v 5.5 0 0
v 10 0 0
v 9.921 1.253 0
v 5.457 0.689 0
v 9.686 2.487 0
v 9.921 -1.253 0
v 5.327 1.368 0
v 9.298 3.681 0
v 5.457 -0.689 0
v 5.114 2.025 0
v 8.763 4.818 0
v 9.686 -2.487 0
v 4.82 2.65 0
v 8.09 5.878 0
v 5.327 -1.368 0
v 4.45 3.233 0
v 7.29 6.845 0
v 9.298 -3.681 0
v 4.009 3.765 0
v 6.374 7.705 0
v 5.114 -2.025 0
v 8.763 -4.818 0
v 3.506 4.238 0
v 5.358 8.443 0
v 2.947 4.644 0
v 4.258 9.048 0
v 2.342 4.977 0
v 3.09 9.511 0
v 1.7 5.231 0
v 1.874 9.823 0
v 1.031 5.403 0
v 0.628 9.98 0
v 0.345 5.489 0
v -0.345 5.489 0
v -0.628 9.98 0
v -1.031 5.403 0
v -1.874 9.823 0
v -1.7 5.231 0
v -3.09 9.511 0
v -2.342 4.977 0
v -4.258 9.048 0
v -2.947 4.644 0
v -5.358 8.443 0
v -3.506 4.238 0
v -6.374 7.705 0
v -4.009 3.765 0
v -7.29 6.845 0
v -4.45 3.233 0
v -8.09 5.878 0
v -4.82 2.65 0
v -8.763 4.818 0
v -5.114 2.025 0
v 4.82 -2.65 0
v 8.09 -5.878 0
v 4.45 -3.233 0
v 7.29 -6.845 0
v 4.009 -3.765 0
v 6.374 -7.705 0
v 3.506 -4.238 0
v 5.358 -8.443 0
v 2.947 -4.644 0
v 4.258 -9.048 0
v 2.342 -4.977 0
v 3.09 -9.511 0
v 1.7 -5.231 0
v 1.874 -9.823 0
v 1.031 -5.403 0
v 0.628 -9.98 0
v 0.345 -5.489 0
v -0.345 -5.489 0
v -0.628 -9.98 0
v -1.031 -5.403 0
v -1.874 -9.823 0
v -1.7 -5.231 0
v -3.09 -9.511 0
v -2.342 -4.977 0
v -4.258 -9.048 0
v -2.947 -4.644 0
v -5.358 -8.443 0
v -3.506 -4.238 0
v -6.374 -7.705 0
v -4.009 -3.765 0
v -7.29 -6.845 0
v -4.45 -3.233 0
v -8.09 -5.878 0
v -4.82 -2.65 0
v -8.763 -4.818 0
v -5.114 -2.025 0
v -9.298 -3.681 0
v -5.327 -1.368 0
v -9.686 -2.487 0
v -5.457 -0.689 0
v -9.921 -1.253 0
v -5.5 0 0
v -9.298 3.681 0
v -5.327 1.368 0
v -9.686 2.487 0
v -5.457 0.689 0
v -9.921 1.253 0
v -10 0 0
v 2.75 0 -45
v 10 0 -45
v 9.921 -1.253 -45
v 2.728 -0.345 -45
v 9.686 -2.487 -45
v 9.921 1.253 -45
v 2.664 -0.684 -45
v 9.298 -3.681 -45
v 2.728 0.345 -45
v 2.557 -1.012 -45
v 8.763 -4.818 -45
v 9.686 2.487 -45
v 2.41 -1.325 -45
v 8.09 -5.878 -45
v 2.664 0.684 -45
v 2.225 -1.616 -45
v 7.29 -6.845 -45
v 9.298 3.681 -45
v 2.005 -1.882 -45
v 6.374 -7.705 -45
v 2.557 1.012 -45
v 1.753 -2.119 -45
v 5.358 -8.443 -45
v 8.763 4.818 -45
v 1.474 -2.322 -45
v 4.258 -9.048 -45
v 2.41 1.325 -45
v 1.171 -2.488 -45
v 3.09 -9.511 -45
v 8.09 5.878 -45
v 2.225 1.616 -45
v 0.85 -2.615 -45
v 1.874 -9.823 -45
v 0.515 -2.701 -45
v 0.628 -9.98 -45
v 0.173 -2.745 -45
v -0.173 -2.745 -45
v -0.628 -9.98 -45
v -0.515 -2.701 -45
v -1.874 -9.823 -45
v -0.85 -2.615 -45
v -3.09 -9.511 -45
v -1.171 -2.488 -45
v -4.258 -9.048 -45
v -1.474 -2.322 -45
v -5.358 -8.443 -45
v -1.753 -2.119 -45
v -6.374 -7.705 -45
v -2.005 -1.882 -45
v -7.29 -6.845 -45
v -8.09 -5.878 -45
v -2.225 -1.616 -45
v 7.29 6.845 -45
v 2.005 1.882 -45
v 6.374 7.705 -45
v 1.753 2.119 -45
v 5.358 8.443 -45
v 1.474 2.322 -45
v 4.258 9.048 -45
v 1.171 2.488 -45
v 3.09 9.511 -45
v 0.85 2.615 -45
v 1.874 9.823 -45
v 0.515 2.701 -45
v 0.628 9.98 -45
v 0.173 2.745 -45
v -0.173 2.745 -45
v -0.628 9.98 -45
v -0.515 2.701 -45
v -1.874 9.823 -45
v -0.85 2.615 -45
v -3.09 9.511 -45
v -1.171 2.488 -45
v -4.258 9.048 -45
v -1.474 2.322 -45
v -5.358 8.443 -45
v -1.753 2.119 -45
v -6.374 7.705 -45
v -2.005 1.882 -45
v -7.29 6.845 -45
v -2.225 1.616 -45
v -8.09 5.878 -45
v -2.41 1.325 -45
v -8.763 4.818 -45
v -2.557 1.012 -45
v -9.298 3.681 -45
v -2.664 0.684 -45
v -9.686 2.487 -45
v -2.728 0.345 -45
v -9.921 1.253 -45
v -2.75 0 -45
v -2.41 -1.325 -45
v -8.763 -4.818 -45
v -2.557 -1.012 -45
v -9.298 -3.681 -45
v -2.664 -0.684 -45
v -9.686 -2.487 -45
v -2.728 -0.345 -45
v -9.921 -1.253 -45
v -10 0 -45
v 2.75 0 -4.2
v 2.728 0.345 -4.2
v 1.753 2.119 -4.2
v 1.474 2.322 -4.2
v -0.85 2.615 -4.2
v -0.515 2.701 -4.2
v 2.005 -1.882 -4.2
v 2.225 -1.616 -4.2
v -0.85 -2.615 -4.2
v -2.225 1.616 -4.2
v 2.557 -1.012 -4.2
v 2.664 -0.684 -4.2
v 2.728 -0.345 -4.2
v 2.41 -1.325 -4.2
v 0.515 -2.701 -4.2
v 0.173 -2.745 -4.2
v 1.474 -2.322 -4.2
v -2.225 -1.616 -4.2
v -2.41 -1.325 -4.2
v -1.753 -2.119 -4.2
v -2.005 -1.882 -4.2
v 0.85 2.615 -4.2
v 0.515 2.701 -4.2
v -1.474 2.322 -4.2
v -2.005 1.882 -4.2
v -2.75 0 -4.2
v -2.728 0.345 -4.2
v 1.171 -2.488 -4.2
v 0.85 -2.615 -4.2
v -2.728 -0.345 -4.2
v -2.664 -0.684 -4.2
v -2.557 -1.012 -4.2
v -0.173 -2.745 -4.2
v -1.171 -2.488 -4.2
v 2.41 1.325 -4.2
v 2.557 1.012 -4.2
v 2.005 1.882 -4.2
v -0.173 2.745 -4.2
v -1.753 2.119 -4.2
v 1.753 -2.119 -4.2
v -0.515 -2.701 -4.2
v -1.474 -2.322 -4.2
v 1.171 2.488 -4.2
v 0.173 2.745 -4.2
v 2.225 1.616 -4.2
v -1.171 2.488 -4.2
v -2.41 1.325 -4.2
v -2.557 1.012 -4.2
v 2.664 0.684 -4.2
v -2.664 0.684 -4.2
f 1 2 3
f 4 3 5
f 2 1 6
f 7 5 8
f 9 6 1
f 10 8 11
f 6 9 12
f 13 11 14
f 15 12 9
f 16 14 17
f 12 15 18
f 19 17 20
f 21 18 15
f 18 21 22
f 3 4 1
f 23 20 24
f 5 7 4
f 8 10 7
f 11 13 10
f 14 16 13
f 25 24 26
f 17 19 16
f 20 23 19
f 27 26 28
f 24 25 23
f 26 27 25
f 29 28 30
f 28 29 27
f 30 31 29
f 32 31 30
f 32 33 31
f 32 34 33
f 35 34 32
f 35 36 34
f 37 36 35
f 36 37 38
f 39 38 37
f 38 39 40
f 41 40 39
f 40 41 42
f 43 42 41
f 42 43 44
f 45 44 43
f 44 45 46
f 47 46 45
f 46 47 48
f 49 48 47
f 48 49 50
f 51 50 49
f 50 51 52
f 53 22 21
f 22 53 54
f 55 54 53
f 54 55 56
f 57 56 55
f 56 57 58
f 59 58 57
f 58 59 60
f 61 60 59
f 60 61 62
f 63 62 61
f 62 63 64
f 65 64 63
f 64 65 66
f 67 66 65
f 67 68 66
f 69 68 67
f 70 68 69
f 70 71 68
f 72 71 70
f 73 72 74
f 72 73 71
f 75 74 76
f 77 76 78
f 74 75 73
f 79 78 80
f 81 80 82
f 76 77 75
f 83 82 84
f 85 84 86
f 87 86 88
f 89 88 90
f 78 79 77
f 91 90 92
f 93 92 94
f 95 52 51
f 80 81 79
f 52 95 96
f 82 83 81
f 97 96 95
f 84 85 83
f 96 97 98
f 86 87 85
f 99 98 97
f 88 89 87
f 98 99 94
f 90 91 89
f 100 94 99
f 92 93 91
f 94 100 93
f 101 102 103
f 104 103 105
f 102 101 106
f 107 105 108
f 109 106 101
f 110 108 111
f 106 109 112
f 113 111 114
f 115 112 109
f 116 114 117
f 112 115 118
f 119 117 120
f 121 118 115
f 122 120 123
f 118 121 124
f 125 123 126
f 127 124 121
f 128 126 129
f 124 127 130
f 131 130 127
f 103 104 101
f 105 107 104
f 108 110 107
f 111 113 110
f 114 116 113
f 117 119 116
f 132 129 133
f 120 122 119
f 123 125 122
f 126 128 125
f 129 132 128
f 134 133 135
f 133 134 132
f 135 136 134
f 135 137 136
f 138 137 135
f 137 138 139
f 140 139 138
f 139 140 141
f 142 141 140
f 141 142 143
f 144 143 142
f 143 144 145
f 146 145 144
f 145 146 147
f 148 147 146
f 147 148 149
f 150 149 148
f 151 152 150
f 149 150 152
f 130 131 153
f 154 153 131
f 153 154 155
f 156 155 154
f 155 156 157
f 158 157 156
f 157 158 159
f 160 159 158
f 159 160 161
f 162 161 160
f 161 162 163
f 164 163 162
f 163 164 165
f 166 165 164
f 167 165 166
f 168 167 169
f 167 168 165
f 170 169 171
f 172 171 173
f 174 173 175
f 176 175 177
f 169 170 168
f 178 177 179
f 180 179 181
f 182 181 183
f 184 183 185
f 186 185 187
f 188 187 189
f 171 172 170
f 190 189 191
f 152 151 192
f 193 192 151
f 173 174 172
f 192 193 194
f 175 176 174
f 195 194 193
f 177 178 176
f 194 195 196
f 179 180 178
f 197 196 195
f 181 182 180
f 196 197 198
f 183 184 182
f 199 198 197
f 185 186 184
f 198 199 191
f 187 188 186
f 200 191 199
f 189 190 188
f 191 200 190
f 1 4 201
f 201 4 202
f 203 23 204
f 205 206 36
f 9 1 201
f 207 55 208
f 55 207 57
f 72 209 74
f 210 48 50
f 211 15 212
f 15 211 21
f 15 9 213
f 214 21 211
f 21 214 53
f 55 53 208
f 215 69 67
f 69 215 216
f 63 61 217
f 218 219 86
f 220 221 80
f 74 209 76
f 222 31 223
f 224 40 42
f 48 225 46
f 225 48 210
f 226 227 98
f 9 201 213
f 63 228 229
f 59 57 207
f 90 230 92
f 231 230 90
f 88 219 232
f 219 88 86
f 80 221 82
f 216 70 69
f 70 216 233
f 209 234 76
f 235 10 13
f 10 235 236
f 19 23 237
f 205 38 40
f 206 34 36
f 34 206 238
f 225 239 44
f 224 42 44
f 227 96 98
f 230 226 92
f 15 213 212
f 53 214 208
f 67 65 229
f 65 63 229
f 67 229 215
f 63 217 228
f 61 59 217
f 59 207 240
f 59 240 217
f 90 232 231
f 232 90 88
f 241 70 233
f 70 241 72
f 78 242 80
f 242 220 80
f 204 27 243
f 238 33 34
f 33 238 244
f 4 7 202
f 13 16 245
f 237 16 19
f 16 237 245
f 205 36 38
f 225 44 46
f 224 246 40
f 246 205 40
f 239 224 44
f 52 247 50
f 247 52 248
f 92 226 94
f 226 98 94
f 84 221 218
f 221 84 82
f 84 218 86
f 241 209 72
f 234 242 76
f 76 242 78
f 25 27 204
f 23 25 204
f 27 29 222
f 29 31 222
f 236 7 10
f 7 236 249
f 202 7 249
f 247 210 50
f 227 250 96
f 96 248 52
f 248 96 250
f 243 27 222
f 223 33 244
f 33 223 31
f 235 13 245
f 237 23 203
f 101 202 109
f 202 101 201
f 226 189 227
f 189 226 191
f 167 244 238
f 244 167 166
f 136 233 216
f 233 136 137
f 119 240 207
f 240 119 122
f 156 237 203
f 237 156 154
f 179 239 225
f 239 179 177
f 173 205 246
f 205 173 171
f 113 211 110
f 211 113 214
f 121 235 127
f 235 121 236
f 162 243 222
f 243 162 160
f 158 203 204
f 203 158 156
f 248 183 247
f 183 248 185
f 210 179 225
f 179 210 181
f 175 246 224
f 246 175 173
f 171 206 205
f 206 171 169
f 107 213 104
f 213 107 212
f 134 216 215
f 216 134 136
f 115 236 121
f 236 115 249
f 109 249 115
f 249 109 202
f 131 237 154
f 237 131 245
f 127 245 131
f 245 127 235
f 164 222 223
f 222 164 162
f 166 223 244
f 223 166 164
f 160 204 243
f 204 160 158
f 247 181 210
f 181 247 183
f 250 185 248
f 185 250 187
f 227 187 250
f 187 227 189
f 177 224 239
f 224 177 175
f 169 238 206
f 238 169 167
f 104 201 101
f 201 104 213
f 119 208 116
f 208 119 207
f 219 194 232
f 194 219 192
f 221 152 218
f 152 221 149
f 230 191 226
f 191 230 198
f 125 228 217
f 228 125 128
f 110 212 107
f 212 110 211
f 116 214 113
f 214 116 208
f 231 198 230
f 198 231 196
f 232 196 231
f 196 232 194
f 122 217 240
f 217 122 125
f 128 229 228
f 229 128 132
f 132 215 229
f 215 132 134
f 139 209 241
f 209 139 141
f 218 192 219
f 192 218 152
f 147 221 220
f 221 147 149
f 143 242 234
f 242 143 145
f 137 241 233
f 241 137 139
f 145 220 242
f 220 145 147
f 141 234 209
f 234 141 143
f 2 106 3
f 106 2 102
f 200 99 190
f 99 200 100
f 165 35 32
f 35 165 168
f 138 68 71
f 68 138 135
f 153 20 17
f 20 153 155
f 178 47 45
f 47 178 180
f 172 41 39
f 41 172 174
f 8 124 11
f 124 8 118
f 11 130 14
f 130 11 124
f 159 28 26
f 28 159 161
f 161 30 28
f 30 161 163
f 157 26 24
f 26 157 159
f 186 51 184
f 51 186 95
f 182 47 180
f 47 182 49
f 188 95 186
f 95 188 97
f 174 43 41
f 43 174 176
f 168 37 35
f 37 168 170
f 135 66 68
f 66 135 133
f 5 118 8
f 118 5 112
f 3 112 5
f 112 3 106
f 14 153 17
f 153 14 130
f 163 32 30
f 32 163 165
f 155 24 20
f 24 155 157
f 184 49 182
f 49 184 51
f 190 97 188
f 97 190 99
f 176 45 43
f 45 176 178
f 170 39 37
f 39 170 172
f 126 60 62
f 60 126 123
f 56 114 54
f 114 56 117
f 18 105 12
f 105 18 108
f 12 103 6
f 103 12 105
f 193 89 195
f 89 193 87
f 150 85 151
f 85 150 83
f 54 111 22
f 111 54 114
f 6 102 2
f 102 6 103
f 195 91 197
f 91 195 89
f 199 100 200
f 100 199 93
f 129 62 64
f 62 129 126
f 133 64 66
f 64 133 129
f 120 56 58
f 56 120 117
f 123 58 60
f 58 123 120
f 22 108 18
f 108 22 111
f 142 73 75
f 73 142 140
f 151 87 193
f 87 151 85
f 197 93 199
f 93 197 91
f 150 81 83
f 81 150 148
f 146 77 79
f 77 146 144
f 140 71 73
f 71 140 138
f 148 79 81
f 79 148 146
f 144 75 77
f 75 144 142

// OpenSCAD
$fn = 50;


difference() {
	union() {
		translate(v = [0, 0, -45.0000000000]) {
			cylinder(h = 45, r = 10.0000000000);
		}
		cylinder(h = 0, r = 20.0000000000);
	}
	union() {
		translate(v = [0, 0, 0]) {
			rotate(a = [0, 0, 0]) {
				difference() {
					union() {
						#translate(v = [0, 0, -45.0000000000]) {
							cylinder(h = 45, r = 2.2500000000);
						}
						#translate(v = [0, 0, -4.2000000000]) {
							cylinder(h = 4.2000000000, r = 10.0000000000, r1 = 2.7500000000, r2 = 5.5000000000);
						}
						#translate(v = [0, 0, -45.0000000000]) {
							cylinder(h = 45, r = 2.7500000000);
						}
						#translate(v = [0, 0, -45.0000000000]) {
							cylinder(h = 45, r = 2.2500000000);
						}
					}
					union();
				}
			}
		}
	}
}
